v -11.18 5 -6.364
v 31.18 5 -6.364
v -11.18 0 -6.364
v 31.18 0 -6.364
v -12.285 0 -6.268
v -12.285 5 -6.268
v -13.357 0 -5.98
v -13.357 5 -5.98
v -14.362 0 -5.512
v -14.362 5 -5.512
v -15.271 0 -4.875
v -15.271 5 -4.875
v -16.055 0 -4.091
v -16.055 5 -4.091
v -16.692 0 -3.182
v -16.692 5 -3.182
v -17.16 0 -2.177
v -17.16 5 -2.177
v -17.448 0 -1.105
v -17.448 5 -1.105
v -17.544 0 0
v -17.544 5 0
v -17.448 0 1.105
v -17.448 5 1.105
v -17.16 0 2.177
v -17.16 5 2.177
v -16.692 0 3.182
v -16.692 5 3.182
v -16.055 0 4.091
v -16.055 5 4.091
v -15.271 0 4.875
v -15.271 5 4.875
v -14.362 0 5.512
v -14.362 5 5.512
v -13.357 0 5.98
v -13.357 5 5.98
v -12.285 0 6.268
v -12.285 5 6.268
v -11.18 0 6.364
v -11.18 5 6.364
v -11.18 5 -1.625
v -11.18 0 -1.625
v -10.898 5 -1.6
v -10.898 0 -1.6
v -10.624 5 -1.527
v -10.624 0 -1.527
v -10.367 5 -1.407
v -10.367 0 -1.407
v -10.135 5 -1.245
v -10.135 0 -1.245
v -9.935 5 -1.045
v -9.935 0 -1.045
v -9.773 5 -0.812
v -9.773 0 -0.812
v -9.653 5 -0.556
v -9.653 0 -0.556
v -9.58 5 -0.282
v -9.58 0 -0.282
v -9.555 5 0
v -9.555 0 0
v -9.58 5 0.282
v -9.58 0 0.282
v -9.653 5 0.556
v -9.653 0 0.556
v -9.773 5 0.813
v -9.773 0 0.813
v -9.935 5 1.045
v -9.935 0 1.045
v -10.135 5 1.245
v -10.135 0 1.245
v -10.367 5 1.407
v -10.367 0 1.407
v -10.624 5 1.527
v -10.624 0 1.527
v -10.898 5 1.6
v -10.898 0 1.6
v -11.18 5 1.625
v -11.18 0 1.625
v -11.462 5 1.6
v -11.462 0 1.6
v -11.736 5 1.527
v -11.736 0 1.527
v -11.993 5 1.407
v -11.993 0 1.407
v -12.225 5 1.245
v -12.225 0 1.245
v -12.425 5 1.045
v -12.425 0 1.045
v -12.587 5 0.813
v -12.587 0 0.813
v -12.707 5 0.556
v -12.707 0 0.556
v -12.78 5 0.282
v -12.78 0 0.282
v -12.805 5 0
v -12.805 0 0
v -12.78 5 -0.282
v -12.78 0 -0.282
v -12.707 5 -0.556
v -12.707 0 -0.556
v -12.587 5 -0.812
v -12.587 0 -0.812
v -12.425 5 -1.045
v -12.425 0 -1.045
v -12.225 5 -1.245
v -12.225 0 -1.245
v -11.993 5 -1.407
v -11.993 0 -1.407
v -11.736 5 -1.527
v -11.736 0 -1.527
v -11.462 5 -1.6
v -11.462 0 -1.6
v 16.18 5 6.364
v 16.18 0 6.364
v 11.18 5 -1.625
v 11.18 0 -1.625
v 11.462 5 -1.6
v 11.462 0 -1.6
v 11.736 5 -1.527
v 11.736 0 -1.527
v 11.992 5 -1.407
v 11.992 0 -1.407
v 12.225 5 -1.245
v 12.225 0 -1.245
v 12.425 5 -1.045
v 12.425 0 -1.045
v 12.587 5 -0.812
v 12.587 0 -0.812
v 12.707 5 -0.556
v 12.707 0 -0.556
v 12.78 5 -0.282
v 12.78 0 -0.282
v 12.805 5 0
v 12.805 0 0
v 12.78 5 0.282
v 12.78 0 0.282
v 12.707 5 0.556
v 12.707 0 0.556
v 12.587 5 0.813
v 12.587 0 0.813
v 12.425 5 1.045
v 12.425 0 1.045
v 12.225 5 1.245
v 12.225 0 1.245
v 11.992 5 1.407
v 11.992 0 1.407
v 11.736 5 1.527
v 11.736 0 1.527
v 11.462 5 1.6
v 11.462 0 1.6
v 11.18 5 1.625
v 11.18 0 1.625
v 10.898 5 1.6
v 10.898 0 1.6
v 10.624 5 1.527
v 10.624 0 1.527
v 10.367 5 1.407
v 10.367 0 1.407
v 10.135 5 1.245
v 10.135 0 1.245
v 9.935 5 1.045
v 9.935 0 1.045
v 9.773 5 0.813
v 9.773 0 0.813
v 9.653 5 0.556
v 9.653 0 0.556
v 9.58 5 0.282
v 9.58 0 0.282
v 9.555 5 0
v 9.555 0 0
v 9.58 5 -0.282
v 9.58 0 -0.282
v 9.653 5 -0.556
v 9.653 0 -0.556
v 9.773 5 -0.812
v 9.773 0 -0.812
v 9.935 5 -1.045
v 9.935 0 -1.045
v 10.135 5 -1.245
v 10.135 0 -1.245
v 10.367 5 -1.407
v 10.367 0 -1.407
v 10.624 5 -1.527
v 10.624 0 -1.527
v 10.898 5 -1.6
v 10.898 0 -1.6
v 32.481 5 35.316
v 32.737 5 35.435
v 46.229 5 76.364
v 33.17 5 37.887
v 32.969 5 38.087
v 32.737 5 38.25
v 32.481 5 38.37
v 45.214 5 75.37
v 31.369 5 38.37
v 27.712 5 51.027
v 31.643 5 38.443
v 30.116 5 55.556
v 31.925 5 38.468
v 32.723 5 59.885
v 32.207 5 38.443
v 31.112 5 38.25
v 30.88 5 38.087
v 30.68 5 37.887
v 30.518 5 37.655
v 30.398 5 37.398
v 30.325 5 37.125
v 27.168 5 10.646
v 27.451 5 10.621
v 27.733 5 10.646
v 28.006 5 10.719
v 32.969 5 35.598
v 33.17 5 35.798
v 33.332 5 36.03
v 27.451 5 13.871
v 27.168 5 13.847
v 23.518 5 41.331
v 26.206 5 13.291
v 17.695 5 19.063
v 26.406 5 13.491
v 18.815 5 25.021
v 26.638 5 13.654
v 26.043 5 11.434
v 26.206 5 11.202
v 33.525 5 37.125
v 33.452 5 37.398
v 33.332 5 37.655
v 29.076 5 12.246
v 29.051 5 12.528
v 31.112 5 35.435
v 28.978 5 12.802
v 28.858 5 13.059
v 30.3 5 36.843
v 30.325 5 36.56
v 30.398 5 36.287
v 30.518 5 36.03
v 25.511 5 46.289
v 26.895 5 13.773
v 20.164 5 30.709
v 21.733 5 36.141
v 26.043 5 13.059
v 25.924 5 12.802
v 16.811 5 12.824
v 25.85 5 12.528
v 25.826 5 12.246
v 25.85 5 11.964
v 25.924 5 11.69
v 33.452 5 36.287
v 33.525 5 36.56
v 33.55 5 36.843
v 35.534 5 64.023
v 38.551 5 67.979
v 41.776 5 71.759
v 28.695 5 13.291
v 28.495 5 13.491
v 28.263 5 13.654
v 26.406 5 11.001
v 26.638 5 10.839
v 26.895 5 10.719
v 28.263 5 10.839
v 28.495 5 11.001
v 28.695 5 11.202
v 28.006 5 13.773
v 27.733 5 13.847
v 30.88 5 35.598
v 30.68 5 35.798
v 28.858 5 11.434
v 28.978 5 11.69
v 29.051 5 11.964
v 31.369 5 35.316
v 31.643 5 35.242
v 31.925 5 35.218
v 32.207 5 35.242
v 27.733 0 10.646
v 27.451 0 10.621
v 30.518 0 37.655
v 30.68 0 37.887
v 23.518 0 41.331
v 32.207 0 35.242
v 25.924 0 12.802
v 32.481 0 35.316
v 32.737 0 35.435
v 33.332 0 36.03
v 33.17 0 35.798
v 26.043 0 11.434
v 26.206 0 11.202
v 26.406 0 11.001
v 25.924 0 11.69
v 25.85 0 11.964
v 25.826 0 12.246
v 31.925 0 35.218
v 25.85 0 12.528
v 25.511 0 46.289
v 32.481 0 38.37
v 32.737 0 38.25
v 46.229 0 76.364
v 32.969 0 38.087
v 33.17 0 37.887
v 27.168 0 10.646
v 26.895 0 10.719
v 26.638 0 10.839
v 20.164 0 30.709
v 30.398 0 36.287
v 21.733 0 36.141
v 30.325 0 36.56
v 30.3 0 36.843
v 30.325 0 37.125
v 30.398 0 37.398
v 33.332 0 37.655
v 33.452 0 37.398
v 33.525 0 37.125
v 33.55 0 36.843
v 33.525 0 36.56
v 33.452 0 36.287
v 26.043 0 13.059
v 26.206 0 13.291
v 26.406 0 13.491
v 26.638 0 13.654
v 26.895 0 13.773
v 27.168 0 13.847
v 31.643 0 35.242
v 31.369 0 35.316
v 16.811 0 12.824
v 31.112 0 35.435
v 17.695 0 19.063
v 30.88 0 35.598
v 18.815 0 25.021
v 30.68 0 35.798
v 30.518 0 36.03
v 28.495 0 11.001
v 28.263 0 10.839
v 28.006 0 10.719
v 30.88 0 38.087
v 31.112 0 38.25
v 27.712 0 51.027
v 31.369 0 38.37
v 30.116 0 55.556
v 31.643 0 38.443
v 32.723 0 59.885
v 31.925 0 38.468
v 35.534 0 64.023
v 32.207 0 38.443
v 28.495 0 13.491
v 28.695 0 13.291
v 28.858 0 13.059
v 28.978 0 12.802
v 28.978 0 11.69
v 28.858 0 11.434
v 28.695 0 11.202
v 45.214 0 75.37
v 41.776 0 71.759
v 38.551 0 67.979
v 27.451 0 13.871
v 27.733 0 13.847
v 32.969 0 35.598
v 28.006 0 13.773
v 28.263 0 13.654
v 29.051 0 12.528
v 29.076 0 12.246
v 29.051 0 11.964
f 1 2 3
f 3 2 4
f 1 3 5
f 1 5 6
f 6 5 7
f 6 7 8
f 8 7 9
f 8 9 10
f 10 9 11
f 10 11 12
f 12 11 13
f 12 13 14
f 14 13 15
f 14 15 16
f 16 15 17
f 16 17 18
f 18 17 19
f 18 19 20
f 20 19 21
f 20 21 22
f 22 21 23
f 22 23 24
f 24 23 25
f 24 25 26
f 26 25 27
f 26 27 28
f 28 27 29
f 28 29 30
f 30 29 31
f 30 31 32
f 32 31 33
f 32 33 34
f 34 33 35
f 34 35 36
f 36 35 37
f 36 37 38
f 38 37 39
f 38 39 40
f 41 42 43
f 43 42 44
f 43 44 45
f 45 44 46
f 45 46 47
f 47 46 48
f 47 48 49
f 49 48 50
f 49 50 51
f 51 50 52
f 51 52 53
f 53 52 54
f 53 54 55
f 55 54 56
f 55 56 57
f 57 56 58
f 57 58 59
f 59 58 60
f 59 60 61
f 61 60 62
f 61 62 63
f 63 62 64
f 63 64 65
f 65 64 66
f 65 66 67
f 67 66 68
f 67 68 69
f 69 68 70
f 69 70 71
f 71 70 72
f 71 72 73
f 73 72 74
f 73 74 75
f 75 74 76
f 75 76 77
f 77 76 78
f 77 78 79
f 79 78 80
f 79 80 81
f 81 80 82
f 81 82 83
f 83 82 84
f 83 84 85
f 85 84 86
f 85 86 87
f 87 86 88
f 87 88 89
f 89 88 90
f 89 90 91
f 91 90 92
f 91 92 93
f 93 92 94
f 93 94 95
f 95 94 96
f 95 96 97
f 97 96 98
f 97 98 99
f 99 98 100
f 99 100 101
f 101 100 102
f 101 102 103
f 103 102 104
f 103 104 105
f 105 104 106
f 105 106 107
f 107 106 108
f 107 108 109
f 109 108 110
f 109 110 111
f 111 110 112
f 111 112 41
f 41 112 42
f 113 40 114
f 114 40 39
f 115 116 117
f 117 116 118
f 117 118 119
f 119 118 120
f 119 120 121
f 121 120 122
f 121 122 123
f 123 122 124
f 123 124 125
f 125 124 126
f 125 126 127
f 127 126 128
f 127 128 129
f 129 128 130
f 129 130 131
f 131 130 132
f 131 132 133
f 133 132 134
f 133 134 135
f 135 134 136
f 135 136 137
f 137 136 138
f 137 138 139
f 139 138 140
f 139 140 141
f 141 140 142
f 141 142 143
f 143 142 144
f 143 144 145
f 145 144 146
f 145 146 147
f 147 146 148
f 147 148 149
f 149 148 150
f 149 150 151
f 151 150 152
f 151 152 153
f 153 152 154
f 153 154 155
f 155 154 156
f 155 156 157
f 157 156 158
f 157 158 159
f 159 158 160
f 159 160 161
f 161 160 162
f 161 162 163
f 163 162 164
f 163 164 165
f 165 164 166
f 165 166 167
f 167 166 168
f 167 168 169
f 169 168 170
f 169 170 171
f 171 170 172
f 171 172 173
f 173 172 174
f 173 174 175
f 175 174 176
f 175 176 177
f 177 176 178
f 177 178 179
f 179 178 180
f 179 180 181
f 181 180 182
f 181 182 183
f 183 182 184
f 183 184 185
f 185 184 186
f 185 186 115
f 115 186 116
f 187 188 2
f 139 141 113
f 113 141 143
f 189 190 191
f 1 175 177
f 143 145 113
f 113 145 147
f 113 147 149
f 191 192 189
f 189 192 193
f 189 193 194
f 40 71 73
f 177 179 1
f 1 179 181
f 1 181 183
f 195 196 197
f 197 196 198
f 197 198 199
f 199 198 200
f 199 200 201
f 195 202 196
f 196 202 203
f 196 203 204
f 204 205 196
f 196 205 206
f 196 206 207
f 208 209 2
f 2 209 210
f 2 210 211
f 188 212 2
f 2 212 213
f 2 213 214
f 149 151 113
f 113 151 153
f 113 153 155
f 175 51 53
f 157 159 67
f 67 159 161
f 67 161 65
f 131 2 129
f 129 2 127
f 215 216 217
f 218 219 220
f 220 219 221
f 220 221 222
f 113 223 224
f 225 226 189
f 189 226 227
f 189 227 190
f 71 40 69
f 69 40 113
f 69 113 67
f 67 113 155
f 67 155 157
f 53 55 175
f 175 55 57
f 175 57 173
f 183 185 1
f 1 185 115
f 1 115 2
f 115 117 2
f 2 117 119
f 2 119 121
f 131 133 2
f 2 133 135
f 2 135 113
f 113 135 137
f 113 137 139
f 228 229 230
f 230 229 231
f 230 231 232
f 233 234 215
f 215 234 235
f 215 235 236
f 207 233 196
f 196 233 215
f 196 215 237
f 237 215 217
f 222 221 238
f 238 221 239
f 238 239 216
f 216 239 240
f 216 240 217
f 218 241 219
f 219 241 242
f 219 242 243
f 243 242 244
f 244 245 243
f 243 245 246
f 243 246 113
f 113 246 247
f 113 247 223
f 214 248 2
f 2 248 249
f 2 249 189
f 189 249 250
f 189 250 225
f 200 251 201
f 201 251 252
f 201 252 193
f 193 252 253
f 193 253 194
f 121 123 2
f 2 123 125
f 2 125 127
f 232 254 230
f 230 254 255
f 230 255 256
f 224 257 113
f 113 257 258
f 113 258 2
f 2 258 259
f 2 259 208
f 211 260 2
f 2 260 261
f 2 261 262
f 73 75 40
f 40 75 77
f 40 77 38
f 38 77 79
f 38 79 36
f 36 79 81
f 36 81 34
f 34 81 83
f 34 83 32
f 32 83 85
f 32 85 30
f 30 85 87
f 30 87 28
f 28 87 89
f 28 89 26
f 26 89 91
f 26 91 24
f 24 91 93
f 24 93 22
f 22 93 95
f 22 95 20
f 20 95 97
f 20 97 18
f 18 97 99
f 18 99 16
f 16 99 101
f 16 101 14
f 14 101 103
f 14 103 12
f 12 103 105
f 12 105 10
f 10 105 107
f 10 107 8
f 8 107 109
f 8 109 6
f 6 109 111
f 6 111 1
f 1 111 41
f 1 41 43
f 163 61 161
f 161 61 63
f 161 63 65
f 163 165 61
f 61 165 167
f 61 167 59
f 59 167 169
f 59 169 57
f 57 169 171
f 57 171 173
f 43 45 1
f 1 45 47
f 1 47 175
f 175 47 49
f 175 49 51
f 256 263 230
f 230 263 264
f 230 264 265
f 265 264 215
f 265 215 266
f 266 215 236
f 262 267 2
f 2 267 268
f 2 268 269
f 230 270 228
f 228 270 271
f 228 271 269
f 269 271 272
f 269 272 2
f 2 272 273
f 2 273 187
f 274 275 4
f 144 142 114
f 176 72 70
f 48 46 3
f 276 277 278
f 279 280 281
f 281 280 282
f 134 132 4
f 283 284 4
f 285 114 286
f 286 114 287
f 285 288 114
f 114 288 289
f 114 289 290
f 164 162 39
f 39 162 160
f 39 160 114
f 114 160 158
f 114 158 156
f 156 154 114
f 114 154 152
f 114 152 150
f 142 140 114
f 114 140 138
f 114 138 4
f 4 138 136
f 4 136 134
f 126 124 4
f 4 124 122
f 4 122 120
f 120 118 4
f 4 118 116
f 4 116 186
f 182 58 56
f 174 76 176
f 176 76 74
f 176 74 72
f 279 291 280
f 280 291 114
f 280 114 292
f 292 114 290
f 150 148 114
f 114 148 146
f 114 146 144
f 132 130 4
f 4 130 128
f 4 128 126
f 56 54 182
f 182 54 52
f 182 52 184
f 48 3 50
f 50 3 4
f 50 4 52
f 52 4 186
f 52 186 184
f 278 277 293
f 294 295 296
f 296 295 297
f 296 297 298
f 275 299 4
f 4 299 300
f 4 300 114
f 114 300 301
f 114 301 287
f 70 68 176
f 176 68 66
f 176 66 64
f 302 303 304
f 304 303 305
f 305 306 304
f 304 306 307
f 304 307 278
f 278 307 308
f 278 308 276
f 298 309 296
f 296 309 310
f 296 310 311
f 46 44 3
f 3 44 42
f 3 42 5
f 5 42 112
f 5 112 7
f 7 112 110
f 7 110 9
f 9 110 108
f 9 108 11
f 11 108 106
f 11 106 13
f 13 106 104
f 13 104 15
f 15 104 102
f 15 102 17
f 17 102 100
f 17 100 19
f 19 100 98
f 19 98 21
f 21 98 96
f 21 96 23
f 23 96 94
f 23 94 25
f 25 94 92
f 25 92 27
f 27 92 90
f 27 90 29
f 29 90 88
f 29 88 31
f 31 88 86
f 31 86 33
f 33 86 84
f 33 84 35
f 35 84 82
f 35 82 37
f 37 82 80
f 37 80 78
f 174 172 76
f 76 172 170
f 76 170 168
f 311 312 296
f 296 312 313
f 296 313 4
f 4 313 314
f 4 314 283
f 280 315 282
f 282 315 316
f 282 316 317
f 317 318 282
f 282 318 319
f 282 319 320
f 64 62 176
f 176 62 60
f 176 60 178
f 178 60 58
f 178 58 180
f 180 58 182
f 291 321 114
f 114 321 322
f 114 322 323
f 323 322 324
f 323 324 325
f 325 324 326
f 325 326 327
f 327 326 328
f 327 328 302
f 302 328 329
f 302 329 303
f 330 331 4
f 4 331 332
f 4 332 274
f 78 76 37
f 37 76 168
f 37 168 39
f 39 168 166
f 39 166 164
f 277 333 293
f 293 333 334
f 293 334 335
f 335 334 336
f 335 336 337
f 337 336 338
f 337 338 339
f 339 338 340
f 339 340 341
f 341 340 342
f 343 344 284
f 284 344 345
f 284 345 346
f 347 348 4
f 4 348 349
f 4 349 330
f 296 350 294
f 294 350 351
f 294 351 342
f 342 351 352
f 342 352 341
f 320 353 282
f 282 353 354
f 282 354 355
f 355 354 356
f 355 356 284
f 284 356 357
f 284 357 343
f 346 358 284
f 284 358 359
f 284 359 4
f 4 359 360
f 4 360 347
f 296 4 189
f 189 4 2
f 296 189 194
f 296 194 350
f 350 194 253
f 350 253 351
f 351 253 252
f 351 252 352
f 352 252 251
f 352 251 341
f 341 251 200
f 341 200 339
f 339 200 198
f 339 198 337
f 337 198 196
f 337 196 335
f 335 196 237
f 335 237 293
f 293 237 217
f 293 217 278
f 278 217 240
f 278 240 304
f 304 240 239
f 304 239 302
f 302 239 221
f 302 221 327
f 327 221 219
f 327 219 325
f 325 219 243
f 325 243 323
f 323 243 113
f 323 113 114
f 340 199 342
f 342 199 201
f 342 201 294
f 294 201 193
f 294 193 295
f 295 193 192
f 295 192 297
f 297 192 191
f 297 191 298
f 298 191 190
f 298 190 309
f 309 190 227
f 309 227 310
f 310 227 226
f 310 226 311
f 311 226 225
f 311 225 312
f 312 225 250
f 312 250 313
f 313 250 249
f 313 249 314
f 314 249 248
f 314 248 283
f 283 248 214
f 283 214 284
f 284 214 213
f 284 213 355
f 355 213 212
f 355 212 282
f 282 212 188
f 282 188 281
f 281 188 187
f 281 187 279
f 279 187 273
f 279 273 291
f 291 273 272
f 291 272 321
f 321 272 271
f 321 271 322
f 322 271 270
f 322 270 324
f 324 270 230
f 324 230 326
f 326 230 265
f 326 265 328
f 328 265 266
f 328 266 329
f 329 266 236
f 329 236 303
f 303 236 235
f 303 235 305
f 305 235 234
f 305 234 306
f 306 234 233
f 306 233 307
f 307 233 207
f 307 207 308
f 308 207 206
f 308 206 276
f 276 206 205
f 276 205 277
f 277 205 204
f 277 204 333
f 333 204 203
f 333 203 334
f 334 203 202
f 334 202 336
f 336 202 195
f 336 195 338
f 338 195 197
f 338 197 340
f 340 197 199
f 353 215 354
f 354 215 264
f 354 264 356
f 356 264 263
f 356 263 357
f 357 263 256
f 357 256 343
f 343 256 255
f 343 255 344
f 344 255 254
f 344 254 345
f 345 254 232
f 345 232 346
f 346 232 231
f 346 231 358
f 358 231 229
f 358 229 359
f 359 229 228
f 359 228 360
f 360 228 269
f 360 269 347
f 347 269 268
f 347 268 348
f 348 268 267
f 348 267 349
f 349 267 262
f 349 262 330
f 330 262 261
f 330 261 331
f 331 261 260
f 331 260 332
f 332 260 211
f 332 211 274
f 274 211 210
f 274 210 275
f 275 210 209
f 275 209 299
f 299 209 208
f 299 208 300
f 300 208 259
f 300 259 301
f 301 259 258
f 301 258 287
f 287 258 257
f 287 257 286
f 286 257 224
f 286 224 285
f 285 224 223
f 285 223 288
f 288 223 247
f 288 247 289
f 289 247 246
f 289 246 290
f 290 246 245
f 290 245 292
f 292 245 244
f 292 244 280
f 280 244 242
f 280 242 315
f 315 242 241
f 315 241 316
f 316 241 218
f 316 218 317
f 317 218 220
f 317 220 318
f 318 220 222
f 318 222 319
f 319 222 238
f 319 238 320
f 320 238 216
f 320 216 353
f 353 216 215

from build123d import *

# Parameters (mm, degrees)
SKETCH1_R           = 1.625
BOSS_EXTRUDE1_DEPTH = 5
BOSS_EXTRUDE2_START = -5
BOSS_EXTRUDE2_DEPTH = 5
SKETCH3_R           = 1.625
CUT_EXTRUDE1_DEPTH  = 30


with BuildPart() as part:
    # Sketch1 → Boss-Extrude1 (new body)
    with BuildSketch(Plane(origin=(0, 0, 0), x_dir=(1, 0, 0), z_dir=(0, 1, 0))):
        with BuildLine():
            Line((11.18, 6.364229765), (-11.18, 6.364229765))
            ThreePointArc((-11.18, 6.364229765), (-17.544229765, 0), (-11.18, -6.364229765))
            Line((-11.18, -6.364229765), (11.18, -6.364229765))
            ThreePointArc((11.18, -6.364229765), (17.544229765, 0), (11.18, 6.364229765))
        make_face()
        with Locations((-11.18, 0)):
            Circle(SKETCH1_R, mode=Mode.SUBTRACT)
        with Locations((11.18, 0)):
            Circle(SKETCH1_R, mode=Mode.SUBTRACT)
    extrude(amount=BOSS_EXTRUDE1_DEPTH)

    # Sketch2 → Boss-Extrude2 (add)
    with BuildSketch(Plane(origin=(0, 5, 0), x_dir=(1, 0, 0), z_dir=(0, 1, 0)).offset(BOSS_EXTRUDE2_START)):
        with BuildLine():
            ThreePointArc((11.18, 6.364229765), (17.544229765, 0), (11.18, -6.364229765))
            Line((11.18, -6.364229765), (16.18, -6.364229765))
            add(Edge.make_bspline(
                [(16.18, -6.364229765), (19.580097968, -50.660653283), (46.22922531, -76.364229765)],
                knots=[0, 0, 0, 0.734976688, 0.734976688, 0.734976688], degree=2))
            Line((46.22922531, -76.364229765), (31.18, 6.364229765))
            Line((31.18, 6.364229765), (11.18, 6.364229765))
        make_face()
    extrude(amount=BOSS_EXTRUDE2_DEPTH)

    # Sketch3 → Cut-Extrude1 (cut)
    with BuildSketch(Plane(origin=(0, 5, 0), x_dir=(1, 0, 0), z_dir=(0, 1, 0))):
        with Locations((27.4505743, -12.246247431)):
            Circle(SKETCH3_R)
        with Locations((31.924922619, -36.842592833)):
            Circle(SKETCH3_R)
    extrude(amount=-CUT_EXTRUDE1_DEPTH, mode=Mode.SUBTRACT)


solid = part.part
